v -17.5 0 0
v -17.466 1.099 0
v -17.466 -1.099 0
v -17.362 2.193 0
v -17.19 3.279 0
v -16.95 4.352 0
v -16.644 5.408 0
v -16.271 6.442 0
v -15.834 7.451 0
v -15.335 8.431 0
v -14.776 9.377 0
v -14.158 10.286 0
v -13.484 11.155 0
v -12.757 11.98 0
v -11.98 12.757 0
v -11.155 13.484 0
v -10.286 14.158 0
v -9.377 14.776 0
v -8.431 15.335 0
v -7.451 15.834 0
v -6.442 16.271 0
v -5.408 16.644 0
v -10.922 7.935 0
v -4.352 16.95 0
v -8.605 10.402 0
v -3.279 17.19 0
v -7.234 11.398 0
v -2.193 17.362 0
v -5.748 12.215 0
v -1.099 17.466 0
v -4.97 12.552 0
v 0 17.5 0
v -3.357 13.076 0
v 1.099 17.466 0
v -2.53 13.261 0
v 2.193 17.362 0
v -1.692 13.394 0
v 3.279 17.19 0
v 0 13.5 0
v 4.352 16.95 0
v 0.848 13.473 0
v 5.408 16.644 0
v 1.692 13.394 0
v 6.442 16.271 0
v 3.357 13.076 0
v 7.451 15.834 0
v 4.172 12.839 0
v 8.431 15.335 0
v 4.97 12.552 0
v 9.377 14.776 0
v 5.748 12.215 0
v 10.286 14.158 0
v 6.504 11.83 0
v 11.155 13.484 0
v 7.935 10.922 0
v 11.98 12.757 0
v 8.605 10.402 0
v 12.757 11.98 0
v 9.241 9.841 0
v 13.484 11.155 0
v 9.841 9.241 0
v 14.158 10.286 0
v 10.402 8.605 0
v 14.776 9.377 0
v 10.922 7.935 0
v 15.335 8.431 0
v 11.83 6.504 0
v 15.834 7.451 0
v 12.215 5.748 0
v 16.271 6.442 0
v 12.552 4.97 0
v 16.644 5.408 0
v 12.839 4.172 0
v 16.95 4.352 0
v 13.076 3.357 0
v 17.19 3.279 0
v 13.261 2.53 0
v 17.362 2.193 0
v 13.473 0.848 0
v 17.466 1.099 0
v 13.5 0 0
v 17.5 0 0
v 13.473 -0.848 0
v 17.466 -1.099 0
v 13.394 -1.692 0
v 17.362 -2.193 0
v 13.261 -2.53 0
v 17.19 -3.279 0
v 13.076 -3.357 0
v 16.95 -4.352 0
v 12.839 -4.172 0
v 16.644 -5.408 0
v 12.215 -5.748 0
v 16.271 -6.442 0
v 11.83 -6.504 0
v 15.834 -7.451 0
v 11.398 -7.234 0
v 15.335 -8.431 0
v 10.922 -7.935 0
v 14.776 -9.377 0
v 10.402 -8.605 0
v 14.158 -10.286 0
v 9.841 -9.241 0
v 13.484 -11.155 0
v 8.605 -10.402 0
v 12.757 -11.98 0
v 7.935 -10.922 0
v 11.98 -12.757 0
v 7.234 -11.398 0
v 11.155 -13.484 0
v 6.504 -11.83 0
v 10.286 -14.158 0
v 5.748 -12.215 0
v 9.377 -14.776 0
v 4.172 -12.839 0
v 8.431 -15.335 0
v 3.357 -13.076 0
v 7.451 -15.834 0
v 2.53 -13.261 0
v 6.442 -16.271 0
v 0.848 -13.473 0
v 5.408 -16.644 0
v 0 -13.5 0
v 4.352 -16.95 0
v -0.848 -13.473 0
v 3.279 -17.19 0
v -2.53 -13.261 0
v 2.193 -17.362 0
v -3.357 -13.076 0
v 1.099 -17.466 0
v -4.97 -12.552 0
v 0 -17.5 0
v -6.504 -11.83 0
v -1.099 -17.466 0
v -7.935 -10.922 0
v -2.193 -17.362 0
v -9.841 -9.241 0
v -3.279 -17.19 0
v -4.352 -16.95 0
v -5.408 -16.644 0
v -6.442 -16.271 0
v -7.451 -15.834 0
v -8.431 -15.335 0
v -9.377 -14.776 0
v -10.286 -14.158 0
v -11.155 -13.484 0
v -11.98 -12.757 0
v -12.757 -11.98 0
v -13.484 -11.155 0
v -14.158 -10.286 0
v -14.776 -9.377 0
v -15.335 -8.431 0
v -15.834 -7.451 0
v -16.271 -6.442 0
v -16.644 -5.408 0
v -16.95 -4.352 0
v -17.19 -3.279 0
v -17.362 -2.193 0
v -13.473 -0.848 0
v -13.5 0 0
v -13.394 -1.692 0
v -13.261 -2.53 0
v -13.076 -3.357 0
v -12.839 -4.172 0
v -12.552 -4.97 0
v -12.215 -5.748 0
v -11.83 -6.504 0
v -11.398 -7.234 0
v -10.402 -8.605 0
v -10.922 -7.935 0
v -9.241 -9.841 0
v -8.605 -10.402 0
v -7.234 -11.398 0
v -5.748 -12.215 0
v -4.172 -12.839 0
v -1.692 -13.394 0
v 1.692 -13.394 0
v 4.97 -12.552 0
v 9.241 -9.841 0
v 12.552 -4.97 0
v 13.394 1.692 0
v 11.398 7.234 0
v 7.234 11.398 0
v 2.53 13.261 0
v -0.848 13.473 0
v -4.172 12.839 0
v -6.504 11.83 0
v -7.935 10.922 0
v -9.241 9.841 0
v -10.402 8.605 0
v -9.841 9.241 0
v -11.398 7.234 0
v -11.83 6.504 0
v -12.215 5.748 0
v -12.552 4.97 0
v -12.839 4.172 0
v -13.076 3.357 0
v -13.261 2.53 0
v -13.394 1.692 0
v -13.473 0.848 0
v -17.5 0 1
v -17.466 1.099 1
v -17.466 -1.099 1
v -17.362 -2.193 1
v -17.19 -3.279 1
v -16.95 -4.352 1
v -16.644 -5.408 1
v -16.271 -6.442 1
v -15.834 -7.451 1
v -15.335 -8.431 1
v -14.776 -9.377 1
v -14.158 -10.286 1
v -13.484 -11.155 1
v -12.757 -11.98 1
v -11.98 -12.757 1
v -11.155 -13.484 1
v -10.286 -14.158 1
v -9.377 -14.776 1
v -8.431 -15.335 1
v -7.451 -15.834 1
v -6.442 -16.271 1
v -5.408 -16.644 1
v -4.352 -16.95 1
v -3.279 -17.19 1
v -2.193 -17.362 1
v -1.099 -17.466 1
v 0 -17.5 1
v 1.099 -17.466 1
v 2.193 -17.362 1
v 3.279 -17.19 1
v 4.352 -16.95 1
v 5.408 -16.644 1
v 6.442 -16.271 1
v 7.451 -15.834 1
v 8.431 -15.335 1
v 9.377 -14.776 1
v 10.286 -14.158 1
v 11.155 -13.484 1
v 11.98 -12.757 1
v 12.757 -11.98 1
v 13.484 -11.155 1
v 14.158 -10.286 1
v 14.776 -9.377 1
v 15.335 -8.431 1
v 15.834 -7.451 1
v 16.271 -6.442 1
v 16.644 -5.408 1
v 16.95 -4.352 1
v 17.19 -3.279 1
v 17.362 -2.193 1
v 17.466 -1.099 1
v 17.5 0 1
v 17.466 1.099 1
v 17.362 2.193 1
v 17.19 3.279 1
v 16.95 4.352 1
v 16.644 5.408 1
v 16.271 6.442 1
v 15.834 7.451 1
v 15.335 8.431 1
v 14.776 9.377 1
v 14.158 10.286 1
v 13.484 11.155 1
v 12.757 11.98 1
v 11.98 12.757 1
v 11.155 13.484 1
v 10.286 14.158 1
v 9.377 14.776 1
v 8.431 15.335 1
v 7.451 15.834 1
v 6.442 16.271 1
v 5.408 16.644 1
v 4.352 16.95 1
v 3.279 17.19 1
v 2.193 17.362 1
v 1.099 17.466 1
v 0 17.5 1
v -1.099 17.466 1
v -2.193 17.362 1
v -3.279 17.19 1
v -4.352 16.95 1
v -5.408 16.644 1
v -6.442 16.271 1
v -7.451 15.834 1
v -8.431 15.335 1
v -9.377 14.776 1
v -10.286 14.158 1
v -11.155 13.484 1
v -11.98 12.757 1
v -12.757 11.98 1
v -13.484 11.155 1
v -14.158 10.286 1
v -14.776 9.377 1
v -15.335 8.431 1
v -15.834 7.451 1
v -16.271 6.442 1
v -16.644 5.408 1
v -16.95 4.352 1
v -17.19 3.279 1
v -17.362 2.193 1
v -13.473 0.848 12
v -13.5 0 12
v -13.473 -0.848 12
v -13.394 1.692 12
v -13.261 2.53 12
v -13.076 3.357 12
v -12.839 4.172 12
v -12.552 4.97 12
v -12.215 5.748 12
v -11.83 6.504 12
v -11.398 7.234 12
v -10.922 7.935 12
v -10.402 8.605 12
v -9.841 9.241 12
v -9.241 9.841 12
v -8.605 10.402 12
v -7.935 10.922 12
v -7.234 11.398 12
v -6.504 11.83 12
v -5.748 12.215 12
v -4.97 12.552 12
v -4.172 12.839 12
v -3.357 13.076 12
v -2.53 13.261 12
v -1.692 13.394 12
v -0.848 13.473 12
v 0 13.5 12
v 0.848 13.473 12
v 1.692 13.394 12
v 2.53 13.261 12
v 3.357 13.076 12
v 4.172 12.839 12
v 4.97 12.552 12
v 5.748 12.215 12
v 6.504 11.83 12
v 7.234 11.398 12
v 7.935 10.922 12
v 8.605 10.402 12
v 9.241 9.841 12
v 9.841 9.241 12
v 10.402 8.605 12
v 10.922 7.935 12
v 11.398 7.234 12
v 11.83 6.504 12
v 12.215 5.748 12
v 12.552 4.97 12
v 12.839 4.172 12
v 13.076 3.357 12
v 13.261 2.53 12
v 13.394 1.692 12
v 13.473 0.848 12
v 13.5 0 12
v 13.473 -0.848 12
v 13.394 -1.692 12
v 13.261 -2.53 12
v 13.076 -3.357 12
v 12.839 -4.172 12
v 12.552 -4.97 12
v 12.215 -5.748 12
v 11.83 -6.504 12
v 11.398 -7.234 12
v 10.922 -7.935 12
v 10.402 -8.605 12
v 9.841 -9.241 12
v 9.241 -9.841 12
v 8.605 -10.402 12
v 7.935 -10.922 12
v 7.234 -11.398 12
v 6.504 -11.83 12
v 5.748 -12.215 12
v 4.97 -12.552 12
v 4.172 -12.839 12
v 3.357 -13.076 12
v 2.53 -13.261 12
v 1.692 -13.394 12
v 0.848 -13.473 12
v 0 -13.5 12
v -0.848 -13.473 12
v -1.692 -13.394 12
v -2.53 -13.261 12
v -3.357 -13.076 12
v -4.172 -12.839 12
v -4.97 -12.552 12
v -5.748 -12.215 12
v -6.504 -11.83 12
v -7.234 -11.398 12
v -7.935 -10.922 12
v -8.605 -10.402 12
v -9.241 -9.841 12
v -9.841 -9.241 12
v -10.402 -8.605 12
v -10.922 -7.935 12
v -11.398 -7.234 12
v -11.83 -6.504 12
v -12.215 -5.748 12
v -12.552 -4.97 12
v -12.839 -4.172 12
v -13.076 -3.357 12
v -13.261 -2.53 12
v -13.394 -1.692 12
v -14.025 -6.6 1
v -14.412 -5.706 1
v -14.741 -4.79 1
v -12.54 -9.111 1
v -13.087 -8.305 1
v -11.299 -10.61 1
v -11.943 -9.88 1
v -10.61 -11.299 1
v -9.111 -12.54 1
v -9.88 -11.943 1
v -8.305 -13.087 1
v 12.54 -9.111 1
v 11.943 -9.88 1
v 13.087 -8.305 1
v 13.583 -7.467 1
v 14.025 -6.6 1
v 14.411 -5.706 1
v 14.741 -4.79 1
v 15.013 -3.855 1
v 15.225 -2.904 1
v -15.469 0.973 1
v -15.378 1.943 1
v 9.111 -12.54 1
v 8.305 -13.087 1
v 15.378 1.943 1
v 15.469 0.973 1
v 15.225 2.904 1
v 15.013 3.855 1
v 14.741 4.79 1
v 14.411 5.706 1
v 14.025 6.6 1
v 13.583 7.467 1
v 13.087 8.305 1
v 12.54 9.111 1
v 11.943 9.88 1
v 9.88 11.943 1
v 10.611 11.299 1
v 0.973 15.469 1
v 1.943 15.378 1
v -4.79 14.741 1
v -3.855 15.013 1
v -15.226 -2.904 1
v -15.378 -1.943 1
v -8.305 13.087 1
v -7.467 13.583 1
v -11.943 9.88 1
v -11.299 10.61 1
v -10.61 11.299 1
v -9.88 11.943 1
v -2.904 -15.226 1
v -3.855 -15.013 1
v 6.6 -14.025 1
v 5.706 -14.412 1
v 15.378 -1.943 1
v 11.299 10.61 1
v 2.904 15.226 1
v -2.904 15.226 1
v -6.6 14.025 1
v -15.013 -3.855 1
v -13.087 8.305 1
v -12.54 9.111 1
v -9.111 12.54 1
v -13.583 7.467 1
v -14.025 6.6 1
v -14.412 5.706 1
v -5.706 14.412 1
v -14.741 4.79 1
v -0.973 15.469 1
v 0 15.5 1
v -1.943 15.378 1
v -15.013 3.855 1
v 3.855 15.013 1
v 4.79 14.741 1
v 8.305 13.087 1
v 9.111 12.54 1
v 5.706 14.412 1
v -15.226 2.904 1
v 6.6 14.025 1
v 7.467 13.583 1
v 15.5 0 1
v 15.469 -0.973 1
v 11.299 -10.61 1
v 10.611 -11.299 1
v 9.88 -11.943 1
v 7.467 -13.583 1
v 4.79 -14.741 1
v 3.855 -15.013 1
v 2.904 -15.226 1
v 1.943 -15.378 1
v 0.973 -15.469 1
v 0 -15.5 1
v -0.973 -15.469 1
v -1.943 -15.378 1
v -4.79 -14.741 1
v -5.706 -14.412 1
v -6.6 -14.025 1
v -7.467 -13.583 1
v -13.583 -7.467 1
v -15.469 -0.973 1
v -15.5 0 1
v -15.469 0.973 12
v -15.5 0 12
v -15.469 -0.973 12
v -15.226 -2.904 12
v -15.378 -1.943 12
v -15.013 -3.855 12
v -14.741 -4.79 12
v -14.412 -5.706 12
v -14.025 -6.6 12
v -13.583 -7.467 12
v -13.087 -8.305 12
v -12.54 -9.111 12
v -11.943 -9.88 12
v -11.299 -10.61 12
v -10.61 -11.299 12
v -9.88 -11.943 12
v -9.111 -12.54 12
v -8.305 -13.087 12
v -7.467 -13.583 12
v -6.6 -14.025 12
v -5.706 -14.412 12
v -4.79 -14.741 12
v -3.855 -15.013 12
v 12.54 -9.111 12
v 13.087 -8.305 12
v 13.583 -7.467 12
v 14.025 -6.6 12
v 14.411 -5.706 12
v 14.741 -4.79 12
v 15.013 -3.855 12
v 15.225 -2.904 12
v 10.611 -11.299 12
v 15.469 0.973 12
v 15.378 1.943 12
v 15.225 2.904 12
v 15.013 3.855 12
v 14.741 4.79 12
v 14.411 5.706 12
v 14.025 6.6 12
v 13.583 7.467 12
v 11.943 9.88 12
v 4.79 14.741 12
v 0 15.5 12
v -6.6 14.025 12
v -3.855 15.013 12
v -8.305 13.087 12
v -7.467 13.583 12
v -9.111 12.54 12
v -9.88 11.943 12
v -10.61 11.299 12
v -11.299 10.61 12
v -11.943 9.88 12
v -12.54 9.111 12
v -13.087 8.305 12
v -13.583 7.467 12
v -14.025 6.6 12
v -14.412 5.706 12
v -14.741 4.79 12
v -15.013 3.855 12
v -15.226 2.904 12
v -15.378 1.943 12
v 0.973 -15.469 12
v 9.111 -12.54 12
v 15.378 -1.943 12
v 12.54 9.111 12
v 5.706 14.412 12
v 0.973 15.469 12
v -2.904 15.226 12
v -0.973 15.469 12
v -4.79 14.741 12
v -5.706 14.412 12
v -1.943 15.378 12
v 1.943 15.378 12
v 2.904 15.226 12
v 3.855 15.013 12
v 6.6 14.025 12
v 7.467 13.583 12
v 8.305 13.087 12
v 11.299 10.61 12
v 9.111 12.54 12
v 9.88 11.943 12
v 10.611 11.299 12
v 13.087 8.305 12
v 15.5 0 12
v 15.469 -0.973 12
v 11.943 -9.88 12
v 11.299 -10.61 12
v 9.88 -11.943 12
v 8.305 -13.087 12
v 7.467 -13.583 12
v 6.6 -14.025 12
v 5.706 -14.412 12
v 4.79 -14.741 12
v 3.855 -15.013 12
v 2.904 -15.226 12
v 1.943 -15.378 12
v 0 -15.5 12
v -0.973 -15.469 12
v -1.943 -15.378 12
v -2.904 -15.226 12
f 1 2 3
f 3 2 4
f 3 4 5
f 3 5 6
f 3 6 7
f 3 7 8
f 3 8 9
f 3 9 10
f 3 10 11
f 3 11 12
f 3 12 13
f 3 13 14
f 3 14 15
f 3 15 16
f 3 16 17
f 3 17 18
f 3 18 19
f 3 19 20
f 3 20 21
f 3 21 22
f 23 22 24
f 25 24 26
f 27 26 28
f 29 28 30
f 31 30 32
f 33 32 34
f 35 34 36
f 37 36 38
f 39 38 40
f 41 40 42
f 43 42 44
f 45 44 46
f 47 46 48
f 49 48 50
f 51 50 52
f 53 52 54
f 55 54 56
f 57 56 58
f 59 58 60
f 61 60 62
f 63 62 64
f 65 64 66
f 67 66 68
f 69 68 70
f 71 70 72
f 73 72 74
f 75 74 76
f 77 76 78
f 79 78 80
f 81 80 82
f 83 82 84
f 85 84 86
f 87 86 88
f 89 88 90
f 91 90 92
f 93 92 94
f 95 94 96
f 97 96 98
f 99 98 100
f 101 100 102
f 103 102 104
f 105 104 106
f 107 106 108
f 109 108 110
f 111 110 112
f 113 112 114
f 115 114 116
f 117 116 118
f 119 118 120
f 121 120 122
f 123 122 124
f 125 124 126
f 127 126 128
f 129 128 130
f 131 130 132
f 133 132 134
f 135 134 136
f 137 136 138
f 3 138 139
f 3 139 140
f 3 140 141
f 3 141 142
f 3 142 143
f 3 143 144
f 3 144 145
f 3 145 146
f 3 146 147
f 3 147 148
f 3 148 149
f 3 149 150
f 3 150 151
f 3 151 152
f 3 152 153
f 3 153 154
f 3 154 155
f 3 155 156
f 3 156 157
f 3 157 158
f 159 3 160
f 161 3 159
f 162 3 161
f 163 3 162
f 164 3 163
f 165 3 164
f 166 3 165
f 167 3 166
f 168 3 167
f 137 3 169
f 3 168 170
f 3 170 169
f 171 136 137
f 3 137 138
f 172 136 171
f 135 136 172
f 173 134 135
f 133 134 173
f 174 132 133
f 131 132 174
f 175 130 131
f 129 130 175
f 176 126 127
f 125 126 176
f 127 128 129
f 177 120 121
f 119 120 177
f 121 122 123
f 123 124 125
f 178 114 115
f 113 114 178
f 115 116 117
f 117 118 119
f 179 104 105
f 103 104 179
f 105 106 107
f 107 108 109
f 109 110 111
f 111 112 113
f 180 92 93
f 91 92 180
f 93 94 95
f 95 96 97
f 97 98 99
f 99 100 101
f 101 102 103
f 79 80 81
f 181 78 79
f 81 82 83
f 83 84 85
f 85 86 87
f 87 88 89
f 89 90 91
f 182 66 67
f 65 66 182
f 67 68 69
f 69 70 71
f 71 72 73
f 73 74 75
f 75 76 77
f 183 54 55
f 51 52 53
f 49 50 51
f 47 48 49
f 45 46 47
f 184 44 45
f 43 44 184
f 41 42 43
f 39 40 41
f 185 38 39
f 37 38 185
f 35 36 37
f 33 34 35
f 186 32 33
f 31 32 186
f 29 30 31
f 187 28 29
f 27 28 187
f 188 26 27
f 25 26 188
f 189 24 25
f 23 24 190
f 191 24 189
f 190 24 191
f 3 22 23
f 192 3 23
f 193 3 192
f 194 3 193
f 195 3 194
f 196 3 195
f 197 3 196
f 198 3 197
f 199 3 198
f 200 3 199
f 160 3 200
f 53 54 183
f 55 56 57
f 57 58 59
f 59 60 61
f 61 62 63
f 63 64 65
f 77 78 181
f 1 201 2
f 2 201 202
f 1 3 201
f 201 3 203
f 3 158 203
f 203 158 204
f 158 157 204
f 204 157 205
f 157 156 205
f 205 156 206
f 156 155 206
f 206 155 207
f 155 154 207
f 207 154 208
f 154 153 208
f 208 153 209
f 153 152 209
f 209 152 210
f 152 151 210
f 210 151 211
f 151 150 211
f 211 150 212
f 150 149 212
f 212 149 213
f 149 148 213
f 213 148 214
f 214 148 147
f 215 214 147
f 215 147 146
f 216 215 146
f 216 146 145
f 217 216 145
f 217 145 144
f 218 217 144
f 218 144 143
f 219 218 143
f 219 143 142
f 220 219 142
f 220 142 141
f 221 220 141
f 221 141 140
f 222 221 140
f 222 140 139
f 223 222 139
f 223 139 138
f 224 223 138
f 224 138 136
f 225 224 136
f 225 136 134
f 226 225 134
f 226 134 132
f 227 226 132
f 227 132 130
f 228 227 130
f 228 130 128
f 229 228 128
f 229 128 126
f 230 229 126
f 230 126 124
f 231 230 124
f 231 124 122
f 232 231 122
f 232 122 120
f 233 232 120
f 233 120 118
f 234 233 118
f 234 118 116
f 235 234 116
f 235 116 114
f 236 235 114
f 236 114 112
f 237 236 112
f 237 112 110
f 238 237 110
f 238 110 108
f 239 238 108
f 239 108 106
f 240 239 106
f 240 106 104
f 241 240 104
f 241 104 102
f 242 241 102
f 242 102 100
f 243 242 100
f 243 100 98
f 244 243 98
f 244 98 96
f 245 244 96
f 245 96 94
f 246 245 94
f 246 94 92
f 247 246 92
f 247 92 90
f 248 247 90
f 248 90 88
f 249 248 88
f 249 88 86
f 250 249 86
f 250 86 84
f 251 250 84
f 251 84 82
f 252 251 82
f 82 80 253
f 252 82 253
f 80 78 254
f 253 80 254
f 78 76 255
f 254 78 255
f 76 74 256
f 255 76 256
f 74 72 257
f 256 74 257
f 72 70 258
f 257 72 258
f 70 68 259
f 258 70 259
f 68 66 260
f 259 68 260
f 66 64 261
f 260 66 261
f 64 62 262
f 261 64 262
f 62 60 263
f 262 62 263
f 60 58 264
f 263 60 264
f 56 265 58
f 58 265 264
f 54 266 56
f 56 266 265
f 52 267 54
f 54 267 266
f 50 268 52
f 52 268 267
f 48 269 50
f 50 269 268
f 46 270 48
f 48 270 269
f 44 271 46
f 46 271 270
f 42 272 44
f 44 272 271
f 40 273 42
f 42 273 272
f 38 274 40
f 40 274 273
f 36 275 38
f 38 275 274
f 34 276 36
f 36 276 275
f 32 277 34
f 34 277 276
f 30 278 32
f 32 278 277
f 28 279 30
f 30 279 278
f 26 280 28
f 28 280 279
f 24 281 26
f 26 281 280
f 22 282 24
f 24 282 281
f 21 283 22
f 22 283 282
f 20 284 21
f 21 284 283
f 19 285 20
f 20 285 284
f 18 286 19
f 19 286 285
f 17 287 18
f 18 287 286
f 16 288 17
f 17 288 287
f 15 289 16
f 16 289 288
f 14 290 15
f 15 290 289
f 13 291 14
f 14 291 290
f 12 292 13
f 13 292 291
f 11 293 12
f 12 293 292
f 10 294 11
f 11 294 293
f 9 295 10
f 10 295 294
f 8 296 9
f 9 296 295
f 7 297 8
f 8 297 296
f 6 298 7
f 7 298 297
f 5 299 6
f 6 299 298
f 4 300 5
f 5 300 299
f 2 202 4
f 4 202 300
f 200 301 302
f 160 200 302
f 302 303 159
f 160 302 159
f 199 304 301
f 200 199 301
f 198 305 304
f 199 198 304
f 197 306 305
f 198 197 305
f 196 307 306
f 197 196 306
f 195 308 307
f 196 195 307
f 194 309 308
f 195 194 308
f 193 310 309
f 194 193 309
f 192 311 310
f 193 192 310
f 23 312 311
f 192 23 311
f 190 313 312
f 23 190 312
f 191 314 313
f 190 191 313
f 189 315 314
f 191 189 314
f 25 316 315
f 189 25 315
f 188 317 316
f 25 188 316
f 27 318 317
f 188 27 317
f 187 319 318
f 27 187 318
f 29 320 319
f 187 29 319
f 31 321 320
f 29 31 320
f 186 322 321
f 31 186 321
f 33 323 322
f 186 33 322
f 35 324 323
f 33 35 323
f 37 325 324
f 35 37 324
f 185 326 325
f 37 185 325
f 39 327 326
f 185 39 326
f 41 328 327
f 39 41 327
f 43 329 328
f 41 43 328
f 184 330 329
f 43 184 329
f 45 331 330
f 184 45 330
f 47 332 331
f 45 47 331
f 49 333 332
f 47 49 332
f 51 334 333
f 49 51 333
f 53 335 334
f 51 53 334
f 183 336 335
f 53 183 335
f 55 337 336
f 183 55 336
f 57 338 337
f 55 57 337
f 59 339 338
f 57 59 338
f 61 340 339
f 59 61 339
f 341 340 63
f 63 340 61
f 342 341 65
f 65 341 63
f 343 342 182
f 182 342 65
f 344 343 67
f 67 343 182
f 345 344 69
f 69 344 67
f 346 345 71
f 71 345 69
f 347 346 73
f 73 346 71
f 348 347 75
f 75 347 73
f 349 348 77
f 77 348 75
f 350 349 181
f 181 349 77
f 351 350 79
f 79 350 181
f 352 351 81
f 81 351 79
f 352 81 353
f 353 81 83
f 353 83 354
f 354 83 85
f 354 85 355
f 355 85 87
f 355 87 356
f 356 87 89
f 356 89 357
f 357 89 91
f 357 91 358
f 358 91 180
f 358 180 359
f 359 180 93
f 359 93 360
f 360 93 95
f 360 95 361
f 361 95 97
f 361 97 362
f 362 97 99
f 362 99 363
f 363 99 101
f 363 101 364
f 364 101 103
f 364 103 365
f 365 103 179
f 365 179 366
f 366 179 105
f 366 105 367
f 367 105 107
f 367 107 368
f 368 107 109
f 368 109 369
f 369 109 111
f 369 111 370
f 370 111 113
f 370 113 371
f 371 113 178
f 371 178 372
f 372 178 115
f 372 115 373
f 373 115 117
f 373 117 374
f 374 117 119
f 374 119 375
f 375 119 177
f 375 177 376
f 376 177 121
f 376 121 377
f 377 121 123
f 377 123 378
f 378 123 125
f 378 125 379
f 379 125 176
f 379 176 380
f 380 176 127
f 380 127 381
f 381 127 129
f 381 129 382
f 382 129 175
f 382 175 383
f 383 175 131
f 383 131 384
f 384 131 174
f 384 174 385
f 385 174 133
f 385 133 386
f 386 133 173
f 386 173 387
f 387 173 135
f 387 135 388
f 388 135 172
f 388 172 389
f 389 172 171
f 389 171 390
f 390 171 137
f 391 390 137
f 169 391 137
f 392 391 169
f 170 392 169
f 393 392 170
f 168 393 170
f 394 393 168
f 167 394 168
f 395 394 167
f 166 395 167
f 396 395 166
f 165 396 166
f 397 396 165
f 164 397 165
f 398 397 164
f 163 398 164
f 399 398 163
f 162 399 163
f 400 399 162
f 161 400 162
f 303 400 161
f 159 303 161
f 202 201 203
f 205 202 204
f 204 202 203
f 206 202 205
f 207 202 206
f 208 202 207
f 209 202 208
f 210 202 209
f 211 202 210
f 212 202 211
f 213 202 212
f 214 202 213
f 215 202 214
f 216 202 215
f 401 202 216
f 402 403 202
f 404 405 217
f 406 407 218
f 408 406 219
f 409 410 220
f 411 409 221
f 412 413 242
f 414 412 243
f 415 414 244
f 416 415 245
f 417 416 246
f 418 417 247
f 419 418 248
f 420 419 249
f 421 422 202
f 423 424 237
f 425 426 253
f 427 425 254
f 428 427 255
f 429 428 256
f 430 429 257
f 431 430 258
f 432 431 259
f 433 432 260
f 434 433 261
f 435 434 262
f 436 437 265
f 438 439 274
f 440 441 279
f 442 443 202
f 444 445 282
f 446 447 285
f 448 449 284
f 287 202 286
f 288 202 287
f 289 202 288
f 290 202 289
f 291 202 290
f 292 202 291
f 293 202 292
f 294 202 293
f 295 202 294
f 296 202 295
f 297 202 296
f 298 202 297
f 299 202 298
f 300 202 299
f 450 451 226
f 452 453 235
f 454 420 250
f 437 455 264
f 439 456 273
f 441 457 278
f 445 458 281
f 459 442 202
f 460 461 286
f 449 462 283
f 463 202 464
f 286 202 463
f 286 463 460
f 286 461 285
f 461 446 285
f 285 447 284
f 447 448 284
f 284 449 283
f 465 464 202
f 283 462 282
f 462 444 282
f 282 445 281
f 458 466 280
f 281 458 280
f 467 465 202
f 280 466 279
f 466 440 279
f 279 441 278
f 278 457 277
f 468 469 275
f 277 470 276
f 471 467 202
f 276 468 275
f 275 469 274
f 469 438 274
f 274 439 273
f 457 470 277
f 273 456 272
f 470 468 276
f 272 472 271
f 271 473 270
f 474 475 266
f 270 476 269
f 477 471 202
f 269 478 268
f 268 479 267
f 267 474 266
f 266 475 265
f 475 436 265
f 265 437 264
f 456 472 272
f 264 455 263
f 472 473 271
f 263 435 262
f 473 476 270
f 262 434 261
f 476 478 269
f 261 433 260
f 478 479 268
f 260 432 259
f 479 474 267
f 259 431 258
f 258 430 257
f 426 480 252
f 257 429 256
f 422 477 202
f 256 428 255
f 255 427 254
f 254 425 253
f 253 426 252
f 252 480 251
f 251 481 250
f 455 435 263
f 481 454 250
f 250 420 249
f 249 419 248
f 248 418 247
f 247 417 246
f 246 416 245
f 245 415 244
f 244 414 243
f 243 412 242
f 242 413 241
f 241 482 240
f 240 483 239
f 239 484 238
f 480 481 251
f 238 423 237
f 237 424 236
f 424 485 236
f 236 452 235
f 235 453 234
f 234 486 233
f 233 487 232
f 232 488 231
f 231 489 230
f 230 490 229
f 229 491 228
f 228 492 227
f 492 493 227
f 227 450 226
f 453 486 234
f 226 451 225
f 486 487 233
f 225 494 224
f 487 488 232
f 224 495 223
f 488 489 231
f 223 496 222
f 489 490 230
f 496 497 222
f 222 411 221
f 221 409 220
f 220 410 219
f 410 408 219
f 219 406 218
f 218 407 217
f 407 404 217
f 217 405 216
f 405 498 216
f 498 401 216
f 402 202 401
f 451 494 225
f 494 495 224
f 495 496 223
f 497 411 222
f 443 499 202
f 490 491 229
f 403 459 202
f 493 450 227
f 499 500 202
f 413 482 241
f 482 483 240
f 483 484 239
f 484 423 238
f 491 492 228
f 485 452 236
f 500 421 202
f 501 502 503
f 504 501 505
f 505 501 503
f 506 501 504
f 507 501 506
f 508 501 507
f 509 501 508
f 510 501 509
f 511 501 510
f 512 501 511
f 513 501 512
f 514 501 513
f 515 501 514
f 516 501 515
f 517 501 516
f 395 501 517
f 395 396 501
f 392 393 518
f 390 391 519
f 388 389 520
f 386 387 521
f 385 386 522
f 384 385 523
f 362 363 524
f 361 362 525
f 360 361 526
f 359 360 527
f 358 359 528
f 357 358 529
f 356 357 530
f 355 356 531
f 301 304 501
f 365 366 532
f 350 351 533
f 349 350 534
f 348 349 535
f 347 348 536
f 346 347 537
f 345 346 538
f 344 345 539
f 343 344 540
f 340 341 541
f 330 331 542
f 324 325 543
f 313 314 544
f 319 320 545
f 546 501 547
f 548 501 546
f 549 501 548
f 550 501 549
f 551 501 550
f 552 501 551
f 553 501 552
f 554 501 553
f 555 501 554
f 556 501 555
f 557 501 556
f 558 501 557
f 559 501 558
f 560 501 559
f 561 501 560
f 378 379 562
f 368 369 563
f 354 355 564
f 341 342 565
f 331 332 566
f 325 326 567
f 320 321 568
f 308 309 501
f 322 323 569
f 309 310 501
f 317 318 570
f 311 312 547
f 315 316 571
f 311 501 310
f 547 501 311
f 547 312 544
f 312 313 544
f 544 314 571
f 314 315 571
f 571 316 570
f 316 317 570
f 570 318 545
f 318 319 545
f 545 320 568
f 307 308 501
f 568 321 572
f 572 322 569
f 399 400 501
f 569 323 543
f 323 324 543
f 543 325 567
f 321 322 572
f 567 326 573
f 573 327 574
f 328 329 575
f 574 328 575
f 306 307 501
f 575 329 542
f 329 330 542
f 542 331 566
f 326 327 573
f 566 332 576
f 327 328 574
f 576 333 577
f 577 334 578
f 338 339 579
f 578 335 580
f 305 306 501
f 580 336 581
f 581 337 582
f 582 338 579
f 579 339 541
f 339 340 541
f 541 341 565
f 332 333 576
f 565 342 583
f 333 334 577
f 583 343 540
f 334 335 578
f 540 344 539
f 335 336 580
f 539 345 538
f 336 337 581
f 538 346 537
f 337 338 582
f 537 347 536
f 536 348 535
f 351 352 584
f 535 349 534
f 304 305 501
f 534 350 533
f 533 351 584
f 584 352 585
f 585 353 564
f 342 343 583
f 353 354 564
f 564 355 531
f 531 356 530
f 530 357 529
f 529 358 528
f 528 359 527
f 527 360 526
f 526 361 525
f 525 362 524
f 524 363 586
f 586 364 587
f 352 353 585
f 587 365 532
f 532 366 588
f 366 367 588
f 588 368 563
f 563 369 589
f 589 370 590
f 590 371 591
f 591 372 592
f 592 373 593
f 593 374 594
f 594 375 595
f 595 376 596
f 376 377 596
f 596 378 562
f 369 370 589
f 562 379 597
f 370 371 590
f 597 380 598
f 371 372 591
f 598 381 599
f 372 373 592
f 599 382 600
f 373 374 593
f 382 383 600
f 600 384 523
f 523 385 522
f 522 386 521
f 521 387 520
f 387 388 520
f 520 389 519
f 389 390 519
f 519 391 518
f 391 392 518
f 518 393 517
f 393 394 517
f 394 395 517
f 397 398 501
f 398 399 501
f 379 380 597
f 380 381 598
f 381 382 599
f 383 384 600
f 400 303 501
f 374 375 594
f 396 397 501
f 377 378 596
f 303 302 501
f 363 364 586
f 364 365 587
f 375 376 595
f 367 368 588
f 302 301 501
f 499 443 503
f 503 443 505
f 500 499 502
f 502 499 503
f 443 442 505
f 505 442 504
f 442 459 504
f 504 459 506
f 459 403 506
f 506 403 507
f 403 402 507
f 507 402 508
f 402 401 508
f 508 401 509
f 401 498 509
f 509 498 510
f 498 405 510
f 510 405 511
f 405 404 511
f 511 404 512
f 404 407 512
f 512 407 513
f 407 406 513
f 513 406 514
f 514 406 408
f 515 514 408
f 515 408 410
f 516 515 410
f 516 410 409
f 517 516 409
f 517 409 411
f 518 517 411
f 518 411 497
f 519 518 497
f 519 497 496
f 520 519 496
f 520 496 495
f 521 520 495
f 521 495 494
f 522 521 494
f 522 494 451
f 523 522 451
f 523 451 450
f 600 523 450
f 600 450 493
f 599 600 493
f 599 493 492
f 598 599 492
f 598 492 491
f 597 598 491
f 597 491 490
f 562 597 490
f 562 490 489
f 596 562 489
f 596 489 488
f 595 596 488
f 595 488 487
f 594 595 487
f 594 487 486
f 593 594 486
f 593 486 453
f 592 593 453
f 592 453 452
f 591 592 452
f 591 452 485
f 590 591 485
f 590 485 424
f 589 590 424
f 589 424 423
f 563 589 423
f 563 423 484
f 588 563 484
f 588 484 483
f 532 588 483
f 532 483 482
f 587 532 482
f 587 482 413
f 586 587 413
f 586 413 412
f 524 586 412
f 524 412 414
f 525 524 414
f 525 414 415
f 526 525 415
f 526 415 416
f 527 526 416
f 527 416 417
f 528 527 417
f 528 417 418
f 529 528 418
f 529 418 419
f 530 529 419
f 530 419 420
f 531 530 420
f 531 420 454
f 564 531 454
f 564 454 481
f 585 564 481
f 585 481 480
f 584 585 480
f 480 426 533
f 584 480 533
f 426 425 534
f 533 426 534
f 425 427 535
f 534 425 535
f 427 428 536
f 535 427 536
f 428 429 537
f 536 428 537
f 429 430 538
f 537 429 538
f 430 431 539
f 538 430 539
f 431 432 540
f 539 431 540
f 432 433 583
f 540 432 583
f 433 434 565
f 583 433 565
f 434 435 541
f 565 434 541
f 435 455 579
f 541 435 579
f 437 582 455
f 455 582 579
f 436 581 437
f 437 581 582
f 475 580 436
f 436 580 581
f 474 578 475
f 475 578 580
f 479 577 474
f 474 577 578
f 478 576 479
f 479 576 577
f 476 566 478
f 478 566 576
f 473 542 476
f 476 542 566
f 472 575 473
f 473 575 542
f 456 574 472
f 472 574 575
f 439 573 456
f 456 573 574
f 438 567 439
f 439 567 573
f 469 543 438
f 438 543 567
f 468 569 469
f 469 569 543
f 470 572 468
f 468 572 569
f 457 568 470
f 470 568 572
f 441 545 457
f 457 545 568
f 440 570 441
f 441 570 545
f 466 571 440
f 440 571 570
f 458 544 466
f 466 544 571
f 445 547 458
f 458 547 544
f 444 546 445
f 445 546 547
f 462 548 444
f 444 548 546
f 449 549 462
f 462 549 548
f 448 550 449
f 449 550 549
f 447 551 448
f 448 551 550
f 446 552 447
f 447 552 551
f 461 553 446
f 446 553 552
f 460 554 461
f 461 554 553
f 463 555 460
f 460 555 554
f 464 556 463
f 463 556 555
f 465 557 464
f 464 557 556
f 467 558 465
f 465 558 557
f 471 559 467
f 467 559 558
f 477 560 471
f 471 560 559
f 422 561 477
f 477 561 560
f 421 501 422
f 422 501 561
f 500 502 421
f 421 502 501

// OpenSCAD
OUTSIDE_DIAMETER = 31.75;
OUTSIDE_RADIUS = (OUTSIDE_DIAMETER / 2);
TOLERANCE = 0.75;
REAL_OUTSIDE_RADIUS = OUTSIDE_RADIUS - (TOLERANCE / 2);
HEIGHT = 12;
DETAIL = 100;
WALL_THICKNESS = 2;
LIP_THICKNESS = 2;
LIP_HEIGHT = 1;

difference()
{
    union()
    {
        cylinder(r = REAL_OUTSIDE_RADIUS, h = HEIGHT, $fn = DETAIL);
        cylinder(r = REAL_OUTSIDE_RADIUS + LIP_THICKNESS, h = LIP_HEIGHT, $fn = DETAIL);
    }
    translate(v = [0, 0, -1])
        cylinder(r = REAL_OUTSIDE_RADIUS - WALL_THICKNESS, h = HEIGHT + 2, $fn = DETAIL);
}
